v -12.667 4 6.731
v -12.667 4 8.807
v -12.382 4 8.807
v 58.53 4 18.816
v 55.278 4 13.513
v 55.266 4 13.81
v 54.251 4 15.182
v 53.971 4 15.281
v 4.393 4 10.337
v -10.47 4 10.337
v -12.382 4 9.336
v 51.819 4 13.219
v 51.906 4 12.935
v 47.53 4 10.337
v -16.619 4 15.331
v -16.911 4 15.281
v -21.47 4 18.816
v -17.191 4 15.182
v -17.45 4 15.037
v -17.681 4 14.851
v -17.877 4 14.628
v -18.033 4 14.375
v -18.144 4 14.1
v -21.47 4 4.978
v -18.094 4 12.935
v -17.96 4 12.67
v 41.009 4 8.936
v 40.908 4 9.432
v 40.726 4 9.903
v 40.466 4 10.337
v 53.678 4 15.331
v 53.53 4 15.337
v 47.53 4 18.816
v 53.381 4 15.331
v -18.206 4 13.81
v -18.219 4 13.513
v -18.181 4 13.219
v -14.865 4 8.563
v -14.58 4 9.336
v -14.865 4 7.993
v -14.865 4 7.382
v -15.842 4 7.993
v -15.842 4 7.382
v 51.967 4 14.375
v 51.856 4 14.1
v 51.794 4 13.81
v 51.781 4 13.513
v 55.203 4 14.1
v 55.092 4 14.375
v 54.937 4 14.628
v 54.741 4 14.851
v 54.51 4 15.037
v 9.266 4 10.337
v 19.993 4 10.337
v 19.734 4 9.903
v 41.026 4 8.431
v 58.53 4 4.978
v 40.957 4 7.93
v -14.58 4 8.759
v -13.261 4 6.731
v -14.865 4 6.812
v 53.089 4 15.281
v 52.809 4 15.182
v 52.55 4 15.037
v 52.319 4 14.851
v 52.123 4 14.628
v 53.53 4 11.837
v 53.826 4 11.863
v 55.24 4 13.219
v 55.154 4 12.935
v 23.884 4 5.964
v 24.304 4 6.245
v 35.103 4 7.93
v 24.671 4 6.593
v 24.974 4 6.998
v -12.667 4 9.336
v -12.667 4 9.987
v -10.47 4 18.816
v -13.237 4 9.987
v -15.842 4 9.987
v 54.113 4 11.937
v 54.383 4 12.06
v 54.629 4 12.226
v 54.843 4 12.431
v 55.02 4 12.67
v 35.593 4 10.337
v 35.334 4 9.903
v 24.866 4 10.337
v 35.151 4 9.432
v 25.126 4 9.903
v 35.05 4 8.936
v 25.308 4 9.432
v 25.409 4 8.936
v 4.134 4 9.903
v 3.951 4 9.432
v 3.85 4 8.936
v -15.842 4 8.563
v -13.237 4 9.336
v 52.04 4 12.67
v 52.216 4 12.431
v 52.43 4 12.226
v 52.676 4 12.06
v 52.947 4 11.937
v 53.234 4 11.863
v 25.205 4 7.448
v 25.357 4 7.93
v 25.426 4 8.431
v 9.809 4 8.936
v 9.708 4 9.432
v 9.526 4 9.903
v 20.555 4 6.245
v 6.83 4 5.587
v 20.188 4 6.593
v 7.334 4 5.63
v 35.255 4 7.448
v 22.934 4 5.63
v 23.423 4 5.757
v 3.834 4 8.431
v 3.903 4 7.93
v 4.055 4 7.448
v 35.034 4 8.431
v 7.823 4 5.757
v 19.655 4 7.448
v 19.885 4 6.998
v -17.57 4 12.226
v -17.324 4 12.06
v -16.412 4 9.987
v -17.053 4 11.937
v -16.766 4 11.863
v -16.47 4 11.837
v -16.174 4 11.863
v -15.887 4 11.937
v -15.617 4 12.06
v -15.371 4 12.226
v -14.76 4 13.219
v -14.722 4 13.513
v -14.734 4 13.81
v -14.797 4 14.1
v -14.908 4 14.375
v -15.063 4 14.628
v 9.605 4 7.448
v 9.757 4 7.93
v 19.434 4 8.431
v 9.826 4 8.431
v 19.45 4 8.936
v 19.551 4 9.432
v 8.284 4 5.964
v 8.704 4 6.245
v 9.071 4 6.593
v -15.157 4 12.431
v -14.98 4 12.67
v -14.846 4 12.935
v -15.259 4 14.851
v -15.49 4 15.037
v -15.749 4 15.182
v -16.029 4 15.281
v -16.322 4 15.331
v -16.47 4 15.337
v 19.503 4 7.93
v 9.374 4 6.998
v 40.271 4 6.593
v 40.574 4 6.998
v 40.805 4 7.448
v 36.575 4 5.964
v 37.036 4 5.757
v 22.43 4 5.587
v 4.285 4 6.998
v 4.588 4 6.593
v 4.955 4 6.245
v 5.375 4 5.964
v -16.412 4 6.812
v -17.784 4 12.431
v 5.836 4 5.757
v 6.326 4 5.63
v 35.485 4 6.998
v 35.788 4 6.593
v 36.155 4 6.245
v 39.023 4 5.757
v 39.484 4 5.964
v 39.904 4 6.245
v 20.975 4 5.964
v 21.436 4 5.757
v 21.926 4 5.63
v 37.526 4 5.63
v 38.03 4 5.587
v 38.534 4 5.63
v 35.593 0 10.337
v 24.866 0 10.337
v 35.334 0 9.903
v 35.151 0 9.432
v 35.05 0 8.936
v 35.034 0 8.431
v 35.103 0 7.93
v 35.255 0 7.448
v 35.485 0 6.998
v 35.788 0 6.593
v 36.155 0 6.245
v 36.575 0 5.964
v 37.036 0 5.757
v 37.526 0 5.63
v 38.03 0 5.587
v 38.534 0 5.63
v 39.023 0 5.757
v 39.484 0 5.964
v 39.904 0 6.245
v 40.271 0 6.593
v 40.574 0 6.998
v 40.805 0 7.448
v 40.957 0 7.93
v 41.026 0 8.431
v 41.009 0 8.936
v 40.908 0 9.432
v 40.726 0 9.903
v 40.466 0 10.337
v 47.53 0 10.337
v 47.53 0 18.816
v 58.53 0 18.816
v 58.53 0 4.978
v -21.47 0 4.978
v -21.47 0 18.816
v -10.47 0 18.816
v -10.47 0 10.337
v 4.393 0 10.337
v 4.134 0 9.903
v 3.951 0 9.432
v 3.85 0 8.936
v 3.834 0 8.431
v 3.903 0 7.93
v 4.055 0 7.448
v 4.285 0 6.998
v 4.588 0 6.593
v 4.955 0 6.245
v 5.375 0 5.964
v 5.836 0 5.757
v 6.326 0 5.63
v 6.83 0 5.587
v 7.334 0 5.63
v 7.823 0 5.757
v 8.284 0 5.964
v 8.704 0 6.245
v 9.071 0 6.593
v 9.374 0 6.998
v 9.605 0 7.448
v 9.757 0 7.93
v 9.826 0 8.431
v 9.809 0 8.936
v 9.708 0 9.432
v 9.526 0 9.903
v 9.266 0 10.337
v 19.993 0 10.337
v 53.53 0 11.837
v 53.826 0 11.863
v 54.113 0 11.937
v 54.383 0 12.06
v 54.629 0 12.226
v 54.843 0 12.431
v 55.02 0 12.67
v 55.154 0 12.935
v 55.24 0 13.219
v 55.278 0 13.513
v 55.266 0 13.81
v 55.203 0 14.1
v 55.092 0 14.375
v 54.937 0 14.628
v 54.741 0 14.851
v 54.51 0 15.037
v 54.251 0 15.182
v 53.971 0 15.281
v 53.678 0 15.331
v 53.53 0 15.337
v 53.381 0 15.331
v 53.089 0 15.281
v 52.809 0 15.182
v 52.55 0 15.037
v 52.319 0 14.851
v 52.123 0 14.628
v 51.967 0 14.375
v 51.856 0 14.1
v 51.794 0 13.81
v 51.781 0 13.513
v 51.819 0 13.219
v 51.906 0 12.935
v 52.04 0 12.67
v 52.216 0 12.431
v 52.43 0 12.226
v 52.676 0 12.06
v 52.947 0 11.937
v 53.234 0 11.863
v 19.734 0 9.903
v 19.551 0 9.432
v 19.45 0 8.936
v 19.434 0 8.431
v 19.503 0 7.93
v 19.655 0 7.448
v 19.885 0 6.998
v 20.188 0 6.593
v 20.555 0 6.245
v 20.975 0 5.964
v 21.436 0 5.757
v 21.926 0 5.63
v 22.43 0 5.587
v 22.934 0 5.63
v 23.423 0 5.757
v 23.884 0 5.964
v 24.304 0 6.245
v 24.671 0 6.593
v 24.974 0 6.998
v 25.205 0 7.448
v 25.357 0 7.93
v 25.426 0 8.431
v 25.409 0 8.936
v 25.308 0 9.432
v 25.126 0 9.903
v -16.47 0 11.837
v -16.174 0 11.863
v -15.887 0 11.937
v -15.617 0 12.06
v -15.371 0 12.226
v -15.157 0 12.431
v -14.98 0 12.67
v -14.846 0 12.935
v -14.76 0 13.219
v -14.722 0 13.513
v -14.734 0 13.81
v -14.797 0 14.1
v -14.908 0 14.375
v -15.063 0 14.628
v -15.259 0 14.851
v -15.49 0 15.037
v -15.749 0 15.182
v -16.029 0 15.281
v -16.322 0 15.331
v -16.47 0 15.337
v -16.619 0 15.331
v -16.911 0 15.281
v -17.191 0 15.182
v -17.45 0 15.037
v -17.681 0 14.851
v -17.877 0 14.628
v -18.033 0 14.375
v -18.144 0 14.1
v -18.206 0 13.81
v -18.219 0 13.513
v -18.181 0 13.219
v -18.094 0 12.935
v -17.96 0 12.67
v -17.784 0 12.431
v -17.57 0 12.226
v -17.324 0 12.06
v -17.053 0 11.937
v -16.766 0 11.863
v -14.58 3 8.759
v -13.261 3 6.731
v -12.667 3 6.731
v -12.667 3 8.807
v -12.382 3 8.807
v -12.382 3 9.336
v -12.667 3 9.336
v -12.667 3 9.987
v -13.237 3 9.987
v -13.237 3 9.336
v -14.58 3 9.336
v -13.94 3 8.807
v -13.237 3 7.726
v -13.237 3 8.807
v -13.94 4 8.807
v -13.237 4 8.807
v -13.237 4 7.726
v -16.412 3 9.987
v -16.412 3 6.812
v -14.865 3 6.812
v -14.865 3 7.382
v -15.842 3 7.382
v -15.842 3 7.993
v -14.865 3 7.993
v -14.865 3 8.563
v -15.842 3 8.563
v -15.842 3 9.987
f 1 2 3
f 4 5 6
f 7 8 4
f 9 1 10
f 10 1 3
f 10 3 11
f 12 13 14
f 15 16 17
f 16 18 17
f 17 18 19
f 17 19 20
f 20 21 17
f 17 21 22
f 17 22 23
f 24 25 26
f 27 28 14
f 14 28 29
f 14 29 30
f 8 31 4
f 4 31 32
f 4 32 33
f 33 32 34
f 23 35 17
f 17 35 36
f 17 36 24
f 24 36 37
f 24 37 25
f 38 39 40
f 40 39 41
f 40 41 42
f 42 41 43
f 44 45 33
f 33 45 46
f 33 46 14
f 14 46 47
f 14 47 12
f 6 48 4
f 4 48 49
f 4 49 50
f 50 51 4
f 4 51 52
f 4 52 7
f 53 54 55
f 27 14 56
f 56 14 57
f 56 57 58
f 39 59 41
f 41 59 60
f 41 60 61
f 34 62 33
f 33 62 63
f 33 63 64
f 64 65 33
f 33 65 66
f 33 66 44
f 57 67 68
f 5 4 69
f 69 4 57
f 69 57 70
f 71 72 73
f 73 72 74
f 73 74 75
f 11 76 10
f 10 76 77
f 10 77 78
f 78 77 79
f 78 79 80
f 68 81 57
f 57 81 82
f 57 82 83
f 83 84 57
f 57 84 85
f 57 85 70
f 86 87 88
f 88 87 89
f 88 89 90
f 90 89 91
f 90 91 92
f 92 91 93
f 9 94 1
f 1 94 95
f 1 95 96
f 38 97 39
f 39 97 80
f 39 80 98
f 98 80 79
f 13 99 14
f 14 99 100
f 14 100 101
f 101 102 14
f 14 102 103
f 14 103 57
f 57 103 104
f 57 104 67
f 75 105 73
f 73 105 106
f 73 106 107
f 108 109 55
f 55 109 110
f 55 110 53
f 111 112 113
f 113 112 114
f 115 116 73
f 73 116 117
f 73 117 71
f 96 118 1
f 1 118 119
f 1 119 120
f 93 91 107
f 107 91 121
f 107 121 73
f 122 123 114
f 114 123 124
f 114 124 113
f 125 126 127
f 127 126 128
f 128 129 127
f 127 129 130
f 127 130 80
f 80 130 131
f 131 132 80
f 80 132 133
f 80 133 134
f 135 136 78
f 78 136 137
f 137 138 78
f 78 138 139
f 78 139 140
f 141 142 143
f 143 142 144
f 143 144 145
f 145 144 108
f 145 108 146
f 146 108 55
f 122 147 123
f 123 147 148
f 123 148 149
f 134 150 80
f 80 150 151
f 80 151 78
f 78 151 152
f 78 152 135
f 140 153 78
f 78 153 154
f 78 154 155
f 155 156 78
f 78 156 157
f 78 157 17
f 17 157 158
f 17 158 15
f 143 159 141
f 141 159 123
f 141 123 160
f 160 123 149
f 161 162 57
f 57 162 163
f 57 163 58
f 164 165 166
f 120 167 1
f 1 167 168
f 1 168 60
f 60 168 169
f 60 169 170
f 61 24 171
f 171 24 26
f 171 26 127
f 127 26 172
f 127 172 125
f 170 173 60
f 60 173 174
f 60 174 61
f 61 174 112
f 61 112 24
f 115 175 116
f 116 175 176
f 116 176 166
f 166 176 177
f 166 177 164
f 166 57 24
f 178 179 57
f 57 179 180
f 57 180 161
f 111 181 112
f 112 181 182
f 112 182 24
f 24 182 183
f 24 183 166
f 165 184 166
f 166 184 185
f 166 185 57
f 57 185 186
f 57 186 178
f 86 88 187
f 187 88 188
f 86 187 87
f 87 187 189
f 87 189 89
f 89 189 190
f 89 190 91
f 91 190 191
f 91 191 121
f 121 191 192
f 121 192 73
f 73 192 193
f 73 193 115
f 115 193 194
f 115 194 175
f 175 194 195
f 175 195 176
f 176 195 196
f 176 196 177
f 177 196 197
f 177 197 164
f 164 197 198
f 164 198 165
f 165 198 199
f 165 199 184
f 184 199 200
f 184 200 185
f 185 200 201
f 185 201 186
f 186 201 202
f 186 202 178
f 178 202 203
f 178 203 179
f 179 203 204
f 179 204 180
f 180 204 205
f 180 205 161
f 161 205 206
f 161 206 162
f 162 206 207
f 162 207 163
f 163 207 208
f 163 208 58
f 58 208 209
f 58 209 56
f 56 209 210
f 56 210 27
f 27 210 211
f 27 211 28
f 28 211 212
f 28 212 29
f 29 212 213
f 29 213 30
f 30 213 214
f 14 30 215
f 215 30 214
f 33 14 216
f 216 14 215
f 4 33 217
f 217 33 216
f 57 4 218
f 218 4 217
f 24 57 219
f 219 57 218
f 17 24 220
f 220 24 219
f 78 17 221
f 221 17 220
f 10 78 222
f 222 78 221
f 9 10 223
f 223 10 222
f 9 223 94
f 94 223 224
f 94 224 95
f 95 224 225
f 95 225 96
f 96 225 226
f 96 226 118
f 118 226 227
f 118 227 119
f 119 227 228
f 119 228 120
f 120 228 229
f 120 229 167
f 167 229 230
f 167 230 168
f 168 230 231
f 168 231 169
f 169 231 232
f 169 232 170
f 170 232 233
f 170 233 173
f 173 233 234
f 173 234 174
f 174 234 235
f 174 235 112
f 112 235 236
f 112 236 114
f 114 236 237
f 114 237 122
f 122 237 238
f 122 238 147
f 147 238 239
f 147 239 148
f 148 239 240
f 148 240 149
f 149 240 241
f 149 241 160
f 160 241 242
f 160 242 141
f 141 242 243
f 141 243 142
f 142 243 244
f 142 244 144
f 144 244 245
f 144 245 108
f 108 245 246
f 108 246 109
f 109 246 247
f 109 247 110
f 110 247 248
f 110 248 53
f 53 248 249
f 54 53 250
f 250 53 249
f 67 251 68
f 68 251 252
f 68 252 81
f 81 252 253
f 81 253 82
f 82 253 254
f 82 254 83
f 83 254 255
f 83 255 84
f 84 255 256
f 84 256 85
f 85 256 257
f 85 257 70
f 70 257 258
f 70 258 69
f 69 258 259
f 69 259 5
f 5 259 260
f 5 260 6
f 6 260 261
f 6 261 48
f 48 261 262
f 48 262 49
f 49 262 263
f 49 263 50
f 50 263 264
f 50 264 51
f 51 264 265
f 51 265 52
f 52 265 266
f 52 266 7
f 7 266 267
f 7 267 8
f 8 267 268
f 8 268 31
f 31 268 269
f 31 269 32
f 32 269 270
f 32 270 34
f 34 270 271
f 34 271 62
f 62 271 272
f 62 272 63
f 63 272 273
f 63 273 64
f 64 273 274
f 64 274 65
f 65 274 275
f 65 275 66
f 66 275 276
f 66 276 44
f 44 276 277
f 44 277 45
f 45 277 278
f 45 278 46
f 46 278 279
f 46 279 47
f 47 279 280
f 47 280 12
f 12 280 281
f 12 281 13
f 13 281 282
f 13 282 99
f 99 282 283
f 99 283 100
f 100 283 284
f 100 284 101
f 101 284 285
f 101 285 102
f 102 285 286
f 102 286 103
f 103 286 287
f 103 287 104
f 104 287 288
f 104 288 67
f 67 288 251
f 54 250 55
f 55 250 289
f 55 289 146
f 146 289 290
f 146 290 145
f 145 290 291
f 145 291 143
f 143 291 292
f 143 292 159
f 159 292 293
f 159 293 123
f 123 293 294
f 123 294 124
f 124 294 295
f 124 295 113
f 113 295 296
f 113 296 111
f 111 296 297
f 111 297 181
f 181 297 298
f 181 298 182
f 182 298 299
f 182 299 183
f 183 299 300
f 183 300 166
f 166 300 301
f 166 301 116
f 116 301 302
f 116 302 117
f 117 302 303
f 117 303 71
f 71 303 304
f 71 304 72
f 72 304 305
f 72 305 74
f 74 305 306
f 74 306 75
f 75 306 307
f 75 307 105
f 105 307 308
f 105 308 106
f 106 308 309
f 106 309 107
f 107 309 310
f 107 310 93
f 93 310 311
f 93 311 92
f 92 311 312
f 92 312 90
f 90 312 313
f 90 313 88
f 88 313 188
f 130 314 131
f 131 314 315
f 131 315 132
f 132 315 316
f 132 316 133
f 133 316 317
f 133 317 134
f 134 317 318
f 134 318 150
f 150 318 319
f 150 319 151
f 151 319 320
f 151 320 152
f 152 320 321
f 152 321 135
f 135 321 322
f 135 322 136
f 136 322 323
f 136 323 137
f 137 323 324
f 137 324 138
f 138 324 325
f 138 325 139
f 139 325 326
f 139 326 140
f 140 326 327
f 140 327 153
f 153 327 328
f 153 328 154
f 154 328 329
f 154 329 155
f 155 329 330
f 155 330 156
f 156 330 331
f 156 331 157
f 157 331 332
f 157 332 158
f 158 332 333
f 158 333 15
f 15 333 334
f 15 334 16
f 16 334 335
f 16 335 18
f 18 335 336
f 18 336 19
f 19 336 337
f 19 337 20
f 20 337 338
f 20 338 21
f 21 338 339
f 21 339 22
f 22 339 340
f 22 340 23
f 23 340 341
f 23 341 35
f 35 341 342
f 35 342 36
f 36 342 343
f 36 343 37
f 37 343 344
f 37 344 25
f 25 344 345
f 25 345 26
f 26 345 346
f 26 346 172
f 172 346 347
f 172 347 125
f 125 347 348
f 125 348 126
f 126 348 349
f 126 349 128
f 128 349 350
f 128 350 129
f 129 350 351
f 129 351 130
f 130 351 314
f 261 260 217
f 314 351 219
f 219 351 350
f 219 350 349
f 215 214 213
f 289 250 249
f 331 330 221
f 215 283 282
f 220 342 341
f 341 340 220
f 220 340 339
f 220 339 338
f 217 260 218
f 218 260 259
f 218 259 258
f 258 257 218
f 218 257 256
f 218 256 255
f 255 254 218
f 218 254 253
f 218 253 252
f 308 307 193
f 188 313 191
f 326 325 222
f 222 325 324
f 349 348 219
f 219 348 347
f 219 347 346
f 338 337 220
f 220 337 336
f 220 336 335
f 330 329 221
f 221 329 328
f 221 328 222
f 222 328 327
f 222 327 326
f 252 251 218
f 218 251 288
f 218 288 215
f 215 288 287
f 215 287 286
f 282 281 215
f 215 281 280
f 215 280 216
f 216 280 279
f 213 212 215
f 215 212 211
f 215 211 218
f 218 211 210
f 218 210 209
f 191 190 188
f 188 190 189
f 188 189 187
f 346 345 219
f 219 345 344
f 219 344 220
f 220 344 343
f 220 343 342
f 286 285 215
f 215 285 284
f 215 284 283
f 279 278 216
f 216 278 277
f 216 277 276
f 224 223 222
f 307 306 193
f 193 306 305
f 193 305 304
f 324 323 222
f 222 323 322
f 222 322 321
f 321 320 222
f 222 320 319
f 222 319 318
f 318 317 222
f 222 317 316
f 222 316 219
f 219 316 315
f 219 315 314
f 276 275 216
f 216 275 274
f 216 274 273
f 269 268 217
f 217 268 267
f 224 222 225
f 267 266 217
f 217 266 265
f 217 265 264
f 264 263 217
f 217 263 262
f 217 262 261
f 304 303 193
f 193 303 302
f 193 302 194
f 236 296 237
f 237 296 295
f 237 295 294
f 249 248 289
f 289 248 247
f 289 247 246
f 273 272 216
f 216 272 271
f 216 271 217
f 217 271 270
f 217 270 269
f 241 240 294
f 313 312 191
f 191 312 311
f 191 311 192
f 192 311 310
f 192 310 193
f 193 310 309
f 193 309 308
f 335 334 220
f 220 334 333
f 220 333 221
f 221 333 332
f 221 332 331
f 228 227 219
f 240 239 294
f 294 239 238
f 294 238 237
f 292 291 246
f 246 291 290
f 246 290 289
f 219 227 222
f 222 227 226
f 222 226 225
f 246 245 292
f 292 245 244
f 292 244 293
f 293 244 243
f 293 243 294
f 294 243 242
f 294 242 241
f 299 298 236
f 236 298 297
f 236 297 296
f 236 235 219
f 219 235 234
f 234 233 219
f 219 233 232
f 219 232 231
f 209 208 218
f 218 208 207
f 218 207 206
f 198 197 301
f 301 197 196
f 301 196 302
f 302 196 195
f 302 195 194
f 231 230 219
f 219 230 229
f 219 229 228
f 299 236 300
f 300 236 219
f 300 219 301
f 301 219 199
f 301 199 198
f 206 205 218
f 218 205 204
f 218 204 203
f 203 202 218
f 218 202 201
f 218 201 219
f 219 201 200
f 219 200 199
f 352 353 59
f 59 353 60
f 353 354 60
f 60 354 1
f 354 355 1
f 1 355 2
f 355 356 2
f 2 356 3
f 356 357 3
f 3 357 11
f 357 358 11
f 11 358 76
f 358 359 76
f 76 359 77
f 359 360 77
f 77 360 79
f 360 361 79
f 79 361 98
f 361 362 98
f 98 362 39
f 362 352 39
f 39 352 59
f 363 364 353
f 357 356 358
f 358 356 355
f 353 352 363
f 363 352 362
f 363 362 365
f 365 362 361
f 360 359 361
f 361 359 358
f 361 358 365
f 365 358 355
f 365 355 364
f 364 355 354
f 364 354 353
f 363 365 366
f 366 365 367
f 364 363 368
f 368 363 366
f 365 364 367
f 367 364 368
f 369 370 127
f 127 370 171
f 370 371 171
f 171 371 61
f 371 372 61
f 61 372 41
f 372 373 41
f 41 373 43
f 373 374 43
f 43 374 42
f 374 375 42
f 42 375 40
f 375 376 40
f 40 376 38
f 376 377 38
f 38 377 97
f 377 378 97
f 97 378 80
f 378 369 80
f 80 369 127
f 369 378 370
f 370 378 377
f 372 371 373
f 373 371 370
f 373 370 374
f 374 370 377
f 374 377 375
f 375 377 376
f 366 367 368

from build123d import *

# Parameters (mm, degrees)
BOSS_EXTRUDE1_OUTLINE_R = 1.75
BOSS_EXTRUDE1_DEPTH     = 4
CUT_EXTRUDE1_DEPTH      = 1


# Read off the part's stored shape, not the designer's step: Boss-Extrude1
with BuildPart() as part:
    # Boss-Extrude1 outline → Boss-Extrude1 (new body)
    with BuildSketch(Plane(origin=(0, 0, 0), x_dir=(1, 0, 0), z_dir=(0, 1, 0))):
        with BuildLine():
            Line((24.866474615, -10.33744254), (35.59307775, -10.33744254))
            ThreePointArc((35.59307775, -10.33744254), (38.029776183, -5.587442326), (40.466474615, -10.33744254))
            Line((40.466474615, -10.33744254), (47.529776182, -10.33744254))
            Line((47.529776182, -10.33744254), (47.529776182, -18.81631662))
            Line((47.529776182, -18.81631662), (58.529776182, -18.81631662))
            Line((58.529776182, -18.81631662), (58.529776182, -4.977921711))
            Line((58.529776182, -4.977921711), (-21.470223818, -4.977921711))
            Line((-21.470223818, -4.977921711), (-21.470223818, -18.81631662))
            Line((-21.470223818, -18.81631662), (-10.470223818, -18.81631662))
            Line((-10.470223818, -18.81631662), (-10.470223818, -10.33744254))
            Line((-10.470223818, -10.33744254), (4.39307775, -10.33744254))
            ThreePointArc((4.39307775, -10.33744254), (6.829776182, -5.587442326), (9.266474615, -10.33744254))
            Line((9.266474615, -10.33744254), (19.99307775, -10.33744254))
            ThreePointArc((19.99307775, -10.33744254), (22.429776182, -5.587442326), (24.866474615, -10.33744254))
        make_face()
        with Locations((-16.470223818, -13.587442433)):
            Circle(BOSS_EXTRUDE1_OUTLINE_R, mode=Mode.SUBTRACT)
        with Locations((53.529776182, -13.587442433)):
            Circle(BOSS_EXTRUDE1_OUTLINE_R, mode=Mode.SUBTRACT)
    extrude(amount=BOSS_EXTRUDE1_DEPTH)

    # Sketch2 → Cut-Extrude1 (cut)
    # profile 1 of 2: a face of its own
    with BuildSketch(Plane(origin=(0, 4, 0), x_dir=(1, 0, 0), z_dir=(0, 1, 0))):
        Polygon((-16.41198232, -6.812466594), (-14.865187448, -6.812466594), (-14.865187448, -7.382338389), (-15.842110525, -7.382338389), (-15.842110525, -7.992915312), (-14.865187448, -7.992915312), (-14.865187448, -8.562787107), (-15.842110525, -8.562787107), (-15.842110525, -9.987466594), (-16.41198232, -9.987466594), align=None)
    # profile 2 of 2: a face of its own
    with BuildSketch(Plane(origin=(0, 4, 0), x_dir=(1, 0, 0), z_dir=(0, 1, 0))):
        Polygon((-13.260514973, -6.731056337), (-12.667110525, -6.731056337), (-12.667110525, -8.807017876), (-12.382174628, -8.807017876), (-12.382174628, -9.336184543), (-12.667110525, -9.336184543), (-12.667110525, -9.987466594), (-13.23698232, -9.987466594), (-13.23698232, -9.336184543), (-14.580251551, -9.336184543), (-14.580251551, -8.759316554), align=None)
        Polygon((-13.23698232, -8.807017876), (-13.23698232, -7.726423926), (-13.939781799, -8.807017876), align=None, mode=Mode.SUBTRACT)
    extrude(amount=-CUT_EXTRUDE1_DEPTH, mode=Mode.SUBTRACT)


solid = part.part
